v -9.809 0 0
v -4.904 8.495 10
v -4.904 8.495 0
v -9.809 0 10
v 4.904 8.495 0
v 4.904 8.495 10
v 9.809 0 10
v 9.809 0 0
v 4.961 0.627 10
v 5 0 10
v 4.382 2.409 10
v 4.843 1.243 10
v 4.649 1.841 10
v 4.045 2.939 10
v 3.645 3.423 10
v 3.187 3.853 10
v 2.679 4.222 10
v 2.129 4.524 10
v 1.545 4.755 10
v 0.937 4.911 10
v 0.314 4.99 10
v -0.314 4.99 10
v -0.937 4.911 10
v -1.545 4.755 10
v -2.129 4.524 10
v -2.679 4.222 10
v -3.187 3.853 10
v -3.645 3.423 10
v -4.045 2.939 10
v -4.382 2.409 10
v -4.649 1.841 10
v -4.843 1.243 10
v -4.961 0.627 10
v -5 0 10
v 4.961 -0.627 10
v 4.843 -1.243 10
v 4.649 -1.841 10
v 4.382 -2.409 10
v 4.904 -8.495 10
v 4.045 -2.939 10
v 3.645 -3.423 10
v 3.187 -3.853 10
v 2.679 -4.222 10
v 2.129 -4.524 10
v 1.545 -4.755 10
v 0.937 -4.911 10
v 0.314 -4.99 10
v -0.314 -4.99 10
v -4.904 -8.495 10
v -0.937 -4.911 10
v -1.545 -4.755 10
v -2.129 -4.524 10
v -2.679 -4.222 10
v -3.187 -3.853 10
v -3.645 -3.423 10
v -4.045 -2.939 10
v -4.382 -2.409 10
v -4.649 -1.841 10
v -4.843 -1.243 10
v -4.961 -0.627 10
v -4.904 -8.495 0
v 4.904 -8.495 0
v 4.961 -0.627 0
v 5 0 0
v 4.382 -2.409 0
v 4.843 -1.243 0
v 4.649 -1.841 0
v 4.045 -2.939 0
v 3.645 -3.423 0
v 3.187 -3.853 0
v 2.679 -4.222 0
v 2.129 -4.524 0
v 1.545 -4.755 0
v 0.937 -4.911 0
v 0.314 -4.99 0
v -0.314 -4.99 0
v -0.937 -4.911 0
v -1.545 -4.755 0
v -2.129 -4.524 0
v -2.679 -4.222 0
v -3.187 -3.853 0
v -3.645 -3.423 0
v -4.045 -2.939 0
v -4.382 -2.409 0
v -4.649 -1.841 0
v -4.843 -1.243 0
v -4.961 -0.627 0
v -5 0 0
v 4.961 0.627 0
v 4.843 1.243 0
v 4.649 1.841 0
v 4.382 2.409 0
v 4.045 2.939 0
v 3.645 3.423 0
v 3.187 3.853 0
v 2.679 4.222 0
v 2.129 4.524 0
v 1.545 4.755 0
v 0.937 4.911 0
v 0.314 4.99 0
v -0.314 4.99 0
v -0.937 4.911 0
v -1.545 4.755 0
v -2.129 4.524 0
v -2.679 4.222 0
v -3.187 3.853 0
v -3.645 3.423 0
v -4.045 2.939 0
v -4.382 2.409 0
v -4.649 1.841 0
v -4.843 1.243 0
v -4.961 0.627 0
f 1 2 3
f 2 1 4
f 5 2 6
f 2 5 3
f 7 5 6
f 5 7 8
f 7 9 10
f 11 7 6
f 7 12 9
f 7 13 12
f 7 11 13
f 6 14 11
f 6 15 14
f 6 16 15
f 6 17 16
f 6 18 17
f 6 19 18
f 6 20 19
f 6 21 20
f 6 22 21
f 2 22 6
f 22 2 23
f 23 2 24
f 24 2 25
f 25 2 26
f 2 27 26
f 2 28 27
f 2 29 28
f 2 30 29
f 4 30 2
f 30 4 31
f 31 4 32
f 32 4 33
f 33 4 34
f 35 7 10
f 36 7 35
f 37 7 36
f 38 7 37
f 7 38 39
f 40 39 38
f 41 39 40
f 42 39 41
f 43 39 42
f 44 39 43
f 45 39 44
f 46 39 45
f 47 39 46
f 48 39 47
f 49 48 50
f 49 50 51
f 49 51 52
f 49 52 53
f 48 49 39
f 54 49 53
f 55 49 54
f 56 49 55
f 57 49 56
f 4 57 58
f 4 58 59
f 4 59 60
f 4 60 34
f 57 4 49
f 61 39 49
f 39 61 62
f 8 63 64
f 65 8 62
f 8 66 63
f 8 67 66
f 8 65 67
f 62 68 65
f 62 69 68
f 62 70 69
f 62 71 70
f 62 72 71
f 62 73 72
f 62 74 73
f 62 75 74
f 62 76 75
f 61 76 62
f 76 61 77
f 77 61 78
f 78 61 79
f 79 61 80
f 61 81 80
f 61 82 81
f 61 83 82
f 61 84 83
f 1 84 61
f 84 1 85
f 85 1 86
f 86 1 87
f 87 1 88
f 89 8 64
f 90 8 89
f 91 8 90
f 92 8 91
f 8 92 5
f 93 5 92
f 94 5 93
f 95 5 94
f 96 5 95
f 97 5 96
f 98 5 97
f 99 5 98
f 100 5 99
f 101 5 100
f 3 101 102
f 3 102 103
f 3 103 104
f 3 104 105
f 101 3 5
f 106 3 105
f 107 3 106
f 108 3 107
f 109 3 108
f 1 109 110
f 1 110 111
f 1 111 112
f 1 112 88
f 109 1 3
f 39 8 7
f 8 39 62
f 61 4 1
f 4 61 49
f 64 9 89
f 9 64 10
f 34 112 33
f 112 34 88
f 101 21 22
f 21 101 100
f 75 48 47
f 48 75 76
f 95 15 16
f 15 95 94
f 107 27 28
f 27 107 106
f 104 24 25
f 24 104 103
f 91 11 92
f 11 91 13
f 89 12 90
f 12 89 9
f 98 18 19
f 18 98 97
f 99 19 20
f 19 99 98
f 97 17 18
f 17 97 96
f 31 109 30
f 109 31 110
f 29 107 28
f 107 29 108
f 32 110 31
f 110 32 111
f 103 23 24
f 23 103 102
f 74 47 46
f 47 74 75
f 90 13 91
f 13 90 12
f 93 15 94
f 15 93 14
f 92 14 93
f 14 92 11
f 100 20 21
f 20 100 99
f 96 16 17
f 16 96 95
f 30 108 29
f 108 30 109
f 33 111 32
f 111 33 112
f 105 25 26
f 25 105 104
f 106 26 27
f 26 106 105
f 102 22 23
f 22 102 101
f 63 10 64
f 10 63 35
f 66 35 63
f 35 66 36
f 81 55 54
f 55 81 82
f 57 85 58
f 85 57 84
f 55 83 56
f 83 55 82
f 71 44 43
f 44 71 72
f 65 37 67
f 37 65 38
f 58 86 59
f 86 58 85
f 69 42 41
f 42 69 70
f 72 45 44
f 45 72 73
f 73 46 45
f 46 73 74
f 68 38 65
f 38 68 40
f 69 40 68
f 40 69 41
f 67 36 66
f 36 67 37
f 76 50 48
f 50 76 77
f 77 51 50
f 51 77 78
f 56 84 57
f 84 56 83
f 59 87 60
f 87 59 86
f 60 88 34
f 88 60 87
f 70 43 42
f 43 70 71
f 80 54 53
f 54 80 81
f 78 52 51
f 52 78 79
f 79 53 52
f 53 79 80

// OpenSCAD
$fn = 50;


difference() {
	union() {
		translate(v = [0, 0, 0]) {
			rotate(a = [0, 0, 0]) {
				difference() {
					union() {
						linear_extrude(height = 10) {
							polygon(points = [[9.8090000000, 0.0000000000], [4.9045000000, 8.4948431857], [-4.9045000000, 8.4948431857], [-9.8090000000, 0.0000000000], [-4.9045000000, -8.4948431857], [4.9045000000, -8.4948431857]]);
						}
					}
					union();
				}
			}
		}
	}
	union() {
		cylinder(h = 100, r = 5.0000000000);
	}
}
